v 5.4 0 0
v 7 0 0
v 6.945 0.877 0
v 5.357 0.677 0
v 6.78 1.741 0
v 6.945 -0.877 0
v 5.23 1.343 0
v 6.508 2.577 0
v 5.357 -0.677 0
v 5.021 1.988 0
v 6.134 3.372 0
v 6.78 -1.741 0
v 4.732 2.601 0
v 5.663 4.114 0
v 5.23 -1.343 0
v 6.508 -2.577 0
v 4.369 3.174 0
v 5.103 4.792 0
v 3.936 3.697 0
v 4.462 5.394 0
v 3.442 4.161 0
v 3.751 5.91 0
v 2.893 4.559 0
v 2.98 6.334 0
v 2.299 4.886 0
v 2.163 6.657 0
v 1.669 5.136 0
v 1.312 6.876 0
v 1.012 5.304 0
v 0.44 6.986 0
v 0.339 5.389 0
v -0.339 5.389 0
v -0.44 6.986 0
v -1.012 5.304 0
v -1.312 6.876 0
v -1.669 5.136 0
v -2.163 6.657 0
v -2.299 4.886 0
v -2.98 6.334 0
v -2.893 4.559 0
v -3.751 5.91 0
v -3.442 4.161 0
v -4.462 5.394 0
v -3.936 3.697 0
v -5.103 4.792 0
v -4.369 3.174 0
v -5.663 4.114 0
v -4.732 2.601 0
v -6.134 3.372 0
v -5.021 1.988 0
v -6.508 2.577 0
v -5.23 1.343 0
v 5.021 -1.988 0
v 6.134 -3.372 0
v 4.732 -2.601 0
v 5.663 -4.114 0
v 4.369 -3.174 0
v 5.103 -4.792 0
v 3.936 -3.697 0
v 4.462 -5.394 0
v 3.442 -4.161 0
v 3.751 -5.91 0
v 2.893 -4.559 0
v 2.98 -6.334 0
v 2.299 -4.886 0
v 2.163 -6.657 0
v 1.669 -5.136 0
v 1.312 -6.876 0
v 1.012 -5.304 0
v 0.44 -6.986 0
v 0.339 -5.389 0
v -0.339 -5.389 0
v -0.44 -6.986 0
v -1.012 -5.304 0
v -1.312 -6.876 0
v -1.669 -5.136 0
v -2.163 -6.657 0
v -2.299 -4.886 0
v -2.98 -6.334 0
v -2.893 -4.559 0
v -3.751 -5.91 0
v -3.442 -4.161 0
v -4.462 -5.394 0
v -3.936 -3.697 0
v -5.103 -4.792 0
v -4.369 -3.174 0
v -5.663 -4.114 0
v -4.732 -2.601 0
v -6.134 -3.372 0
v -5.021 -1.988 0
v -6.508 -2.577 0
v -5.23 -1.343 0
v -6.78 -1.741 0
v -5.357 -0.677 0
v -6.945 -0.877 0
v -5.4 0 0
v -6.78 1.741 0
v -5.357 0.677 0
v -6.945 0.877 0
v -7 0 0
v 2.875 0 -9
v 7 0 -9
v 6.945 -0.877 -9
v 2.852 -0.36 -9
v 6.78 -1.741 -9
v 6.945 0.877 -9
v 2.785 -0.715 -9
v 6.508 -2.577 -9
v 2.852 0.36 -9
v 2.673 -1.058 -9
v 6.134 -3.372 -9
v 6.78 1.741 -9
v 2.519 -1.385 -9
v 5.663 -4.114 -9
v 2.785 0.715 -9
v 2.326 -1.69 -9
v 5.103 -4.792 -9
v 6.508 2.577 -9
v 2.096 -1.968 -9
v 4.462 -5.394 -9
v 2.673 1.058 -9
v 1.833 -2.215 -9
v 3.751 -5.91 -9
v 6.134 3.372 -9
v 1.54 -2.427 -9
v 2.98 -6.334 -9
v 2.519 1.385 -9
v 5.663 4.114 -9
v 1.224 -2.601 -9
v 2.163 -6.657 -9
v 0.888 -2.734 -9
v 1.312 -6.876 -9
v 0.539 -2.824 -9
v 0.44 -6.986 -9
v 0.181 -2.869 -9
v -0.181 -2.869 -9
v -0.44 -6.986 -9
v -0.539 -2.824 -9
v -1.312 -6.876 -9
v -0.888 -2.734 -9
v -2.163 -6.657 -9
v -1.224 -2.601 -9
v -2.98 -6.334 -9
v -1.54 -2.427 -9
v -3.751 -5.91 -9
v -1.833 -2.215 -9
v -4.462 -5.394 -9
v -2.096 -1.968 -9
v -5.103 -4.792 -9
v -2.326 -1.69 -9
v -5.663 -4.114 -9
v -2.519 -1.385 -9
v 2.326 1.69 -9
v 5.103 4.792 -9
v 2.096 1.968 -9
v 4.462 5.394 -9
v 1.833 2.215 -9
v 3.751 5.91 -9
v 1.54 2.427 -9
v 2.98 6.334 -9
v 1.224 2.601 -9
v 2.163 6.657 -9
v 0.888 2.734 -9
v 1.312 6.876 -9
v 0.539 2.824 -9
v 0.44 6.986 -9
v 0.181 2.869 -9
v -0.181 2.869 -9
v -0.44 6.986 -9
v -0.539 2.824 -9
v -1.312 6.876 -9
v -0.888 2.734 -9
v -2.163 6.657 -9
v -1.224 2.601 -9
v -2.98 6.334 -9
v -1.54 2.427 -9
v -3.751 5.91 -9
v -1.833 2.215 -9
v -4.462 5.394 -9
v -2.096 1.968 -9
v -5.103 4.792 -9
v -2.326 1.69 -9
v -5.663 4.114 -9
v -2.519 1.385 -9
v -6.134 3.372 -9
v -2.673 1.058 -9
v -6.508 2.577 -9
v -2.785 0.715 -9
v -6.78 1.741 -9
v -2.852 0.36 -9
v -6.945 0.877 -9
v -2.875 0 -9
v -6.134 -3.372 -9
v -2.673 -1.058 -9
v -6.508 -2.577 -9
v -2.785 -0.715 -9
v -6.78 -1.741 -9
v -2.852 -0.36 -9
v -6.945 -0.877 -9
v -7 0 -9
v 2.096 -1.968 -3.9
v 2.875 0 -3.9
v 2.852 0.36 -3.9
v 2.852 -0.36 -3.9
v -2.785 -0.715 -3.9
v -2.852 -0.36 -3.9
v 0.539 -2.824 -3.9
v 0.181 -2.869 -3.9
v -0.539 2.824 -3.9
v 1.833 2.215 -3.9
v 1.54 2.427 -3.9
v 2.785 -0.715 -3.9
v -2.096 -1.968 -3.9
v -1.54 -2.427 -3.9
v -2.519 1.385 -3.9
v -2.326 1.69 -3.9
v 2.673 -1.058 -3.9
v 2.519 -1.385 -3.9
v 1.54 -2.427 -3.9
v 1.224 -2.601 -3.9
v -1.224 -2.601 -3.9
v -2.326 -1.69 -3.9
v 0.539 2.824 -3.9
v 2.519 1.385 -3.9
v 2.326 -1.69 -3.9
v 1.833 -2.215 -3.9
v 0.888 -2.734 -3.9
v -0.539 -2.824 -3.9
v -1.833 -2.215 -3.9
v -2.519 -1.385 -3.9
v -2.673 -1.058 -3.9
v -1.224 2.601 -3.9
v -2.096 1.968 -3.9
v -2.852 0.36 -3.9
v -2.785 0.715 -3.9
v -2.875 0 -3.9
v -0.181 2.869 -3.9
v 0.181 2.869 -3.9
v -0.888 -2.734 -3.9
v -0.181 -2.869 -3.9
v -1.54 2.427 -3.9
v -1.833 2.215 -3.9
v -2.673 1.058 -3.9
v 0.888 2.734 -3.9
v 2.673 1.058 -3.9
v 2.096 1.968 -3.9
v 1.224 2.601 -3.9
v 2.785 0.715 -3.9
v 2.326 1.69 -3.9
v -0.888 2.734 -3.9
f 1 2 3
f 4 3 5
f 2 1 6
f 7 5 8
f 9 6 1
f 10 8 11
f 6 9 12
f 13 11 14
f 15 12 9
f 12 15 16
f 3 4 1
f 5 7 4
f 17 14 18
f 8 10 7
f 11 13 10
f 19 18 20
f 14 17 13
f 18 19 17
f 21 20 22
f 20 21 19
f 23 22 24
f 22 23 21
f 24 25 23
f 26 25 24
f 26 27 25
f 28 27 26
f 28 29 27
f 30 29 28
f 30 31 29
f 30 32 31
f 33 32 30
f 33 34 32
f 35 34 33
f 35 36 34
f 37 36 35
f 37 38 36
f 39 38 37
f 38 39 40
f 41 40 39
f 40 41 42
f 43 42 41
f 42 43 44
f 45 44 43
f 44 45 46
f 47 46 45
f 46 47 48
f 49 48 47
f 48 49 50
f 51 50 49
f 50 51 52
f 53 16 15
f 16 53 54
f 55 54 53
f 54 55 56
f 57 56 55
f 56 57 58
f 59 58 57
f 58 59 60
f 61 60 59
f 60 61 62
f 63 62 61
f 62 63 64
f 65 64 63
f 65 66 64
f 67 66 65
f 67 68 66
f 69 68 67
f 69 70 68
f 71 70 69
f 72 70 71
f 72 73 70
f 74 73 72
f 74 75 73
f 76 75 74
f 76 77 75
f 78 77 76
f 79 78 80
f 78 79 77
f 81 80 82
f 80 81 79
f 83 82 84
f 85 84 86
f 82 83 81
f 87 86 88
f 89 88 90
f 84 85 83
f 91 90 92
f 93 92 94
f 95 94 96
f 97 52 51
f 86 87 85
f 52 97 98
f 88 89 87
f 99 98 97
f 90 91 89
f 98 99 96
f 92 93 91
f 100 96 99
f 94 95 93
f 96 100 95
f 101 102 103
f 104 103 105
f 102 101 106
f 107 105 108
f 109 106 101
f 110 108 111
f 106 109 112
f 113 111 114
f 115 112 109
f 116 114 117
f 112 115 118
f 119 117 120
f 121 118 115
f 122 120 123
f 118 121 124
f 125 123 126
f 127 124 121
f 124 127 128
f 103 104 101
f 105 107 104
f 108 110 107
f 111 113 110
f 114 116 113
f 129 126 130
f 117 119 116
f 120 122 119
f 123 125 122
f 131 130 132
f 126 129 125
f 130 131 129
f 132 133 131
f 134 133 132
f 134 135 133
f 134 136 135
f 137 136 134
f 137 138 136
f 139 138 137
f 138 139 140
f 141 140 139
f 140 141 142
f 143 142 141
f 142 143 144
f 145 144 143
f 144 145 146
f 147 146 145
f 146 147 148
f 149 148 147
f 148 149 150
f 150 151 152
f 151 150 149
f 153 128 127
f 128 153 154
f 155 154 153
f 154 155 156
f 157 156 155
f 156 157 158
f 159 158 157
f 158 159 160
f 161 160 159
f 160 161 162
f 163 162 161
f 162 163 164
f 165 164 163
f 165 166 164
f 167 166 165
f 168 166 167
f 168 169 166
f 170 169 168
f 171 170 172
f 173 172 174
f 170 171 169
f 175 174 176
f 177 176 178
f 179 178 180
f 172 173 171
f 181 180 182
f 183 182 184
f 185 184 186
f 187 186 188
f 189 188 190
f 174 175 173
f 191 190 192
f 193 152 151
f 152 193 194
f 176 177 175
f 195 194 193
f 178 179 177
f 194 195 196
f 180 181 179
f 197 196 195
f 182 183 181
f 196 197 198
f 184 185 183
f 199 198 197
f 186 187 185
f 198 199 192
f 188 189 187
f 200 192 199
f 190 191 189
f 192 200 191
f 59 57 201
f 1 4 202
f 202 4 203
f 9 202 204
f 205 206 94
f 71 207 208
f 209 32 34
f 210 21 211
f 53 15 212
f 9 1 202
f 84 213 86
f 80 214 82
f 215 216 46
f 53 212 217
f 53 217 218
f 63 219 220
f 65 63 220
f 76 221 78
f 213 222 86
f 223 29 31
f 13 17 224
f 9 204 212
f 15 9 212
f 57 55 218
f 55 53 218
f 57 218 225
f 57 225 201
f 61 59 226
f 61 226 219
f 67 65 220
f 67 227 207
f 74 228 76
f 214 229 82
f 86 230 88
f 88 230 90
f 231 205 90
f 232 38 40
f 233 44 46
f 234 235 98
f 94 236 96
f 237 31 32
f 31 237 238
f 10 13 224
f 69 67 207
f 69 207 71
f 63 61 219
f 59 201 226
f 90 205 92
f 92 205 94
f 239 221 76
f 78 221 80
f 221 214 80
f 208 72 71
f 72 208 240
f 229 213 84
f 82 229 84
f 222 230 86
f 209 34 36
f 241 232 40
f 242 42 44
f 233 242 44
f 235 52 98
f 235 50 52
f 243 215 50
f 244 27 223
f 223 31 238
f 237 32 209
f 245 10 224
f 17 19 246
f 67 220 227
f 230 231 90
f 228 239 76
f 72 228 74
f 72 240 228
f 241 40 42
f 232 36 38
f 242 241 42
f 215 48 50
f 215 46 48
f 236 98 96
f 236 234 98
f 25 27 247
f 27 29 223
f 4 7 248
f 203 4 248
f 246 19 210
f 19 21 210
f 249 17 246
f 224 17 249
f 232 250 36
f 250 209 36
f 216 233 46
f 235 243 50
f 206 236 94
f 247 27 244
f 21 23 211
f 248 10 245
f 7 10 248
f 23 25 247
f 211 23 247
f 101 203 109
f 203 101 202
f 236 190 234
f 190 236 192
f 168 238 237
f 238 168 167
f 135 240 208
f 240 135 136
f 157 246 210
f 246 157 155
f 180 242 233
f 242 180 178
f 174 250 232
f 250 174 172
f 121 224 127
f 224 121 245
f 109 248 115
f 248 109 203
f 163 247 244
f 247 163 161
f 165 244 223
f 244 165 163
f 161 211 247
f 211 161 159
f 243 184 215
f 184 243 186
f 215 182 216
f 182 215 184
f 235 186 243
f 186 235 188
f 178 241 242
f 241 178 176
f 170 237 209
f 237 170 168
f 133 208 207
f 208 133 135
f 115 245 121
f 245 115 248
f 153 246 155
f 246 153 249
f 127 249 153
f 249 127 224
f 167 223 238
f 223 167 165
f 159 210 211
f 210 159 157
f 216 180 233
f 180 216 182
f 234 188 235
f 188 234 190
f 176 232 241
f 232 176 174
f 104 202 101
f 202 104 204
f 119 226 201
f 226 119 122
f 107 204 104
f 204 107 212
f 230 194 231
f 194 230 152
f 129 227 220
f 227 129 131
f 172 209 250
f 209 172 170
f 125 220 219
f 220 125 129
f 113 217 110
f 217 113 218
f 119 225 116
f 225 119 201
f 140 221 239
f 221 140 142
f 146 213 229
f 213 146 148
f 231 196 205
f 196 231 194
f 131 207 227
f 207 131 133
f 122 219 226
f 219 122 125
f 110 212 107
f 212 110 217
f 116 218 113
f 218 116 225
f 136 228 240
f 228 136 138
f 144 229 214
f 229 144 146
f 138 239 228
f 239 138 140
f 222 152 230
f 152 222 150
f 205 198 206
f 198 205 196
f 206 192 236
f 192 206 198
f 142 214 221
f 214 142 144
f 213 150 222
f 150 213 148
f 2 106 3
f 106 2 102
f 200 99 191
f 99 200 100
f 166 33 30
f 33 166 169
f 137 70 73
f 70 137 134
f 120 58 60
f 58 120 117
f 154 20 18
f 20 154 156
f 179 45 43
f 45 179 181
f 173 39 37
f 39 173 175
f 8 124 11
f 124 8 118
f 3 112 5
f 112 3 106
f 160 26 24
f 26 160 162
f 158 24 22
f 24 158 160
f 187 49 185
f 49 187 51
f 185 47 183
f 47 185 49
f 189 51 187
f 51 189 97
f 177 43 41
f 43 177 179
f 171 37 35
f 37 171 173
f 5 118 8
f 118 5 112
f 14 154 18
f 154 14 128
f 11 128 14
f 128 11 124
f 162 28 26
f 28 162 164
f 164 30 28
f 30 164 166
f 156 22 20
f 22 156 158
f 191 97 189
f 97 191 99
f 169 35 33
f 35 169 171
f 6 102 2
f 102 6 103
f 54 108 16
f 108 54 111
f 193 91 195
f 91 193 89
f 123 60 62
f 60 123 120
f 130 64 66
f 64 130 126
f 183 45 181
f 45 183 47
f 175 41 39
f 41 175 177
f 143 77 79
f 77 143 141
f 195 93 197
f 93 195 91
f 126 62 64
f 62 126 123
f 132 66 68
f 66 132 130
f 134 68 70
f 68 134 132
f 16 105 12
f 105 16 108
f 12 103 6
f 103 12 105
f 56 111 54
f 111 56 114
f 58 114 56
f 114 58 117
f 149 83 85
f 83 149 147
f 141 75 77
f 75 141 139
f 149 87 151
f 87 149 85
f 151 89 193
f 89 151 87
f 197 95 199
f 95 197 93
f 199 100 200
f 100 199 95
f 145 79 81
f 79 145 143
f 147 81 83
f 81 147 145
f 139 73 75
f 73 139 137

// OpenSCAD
$fn = 50;


difference() {
	union() {
		translate(v = [0, 0, -9.0000000000]) {
			cylinder(h = 9, r = 7.0000000000);
		}
		cylinder(h = 0, r = 17.0000000000);
	}
	union() {
		translate(v = [0, 0, 0]) {
			rotate(a = [0, 0, 0]) {
				difference() {
					union() {
						#translate(v = [0, 0, -9.0000000000]) {
							cylinder(h = 9, r = 2.6000000000);
						}
						#translate(v = [0, 0, -3.9000000000]) {
							cylinder(h = 3.9000000000, r = 7.0000000000, r1 = 2.8750000000, r2 = 5.4000000000);
						}
						#translate(v = [0, 0, -9.0000000000]) {
							cylinder(h = 9, r = 2.8750000000);
						}
						#translate(v = [0, 0, -9.0000000000]) {
							cylinder(h = 9, r = 2.6000000000);
						}
					}
					union();
				}
			}
		}
	}
}
